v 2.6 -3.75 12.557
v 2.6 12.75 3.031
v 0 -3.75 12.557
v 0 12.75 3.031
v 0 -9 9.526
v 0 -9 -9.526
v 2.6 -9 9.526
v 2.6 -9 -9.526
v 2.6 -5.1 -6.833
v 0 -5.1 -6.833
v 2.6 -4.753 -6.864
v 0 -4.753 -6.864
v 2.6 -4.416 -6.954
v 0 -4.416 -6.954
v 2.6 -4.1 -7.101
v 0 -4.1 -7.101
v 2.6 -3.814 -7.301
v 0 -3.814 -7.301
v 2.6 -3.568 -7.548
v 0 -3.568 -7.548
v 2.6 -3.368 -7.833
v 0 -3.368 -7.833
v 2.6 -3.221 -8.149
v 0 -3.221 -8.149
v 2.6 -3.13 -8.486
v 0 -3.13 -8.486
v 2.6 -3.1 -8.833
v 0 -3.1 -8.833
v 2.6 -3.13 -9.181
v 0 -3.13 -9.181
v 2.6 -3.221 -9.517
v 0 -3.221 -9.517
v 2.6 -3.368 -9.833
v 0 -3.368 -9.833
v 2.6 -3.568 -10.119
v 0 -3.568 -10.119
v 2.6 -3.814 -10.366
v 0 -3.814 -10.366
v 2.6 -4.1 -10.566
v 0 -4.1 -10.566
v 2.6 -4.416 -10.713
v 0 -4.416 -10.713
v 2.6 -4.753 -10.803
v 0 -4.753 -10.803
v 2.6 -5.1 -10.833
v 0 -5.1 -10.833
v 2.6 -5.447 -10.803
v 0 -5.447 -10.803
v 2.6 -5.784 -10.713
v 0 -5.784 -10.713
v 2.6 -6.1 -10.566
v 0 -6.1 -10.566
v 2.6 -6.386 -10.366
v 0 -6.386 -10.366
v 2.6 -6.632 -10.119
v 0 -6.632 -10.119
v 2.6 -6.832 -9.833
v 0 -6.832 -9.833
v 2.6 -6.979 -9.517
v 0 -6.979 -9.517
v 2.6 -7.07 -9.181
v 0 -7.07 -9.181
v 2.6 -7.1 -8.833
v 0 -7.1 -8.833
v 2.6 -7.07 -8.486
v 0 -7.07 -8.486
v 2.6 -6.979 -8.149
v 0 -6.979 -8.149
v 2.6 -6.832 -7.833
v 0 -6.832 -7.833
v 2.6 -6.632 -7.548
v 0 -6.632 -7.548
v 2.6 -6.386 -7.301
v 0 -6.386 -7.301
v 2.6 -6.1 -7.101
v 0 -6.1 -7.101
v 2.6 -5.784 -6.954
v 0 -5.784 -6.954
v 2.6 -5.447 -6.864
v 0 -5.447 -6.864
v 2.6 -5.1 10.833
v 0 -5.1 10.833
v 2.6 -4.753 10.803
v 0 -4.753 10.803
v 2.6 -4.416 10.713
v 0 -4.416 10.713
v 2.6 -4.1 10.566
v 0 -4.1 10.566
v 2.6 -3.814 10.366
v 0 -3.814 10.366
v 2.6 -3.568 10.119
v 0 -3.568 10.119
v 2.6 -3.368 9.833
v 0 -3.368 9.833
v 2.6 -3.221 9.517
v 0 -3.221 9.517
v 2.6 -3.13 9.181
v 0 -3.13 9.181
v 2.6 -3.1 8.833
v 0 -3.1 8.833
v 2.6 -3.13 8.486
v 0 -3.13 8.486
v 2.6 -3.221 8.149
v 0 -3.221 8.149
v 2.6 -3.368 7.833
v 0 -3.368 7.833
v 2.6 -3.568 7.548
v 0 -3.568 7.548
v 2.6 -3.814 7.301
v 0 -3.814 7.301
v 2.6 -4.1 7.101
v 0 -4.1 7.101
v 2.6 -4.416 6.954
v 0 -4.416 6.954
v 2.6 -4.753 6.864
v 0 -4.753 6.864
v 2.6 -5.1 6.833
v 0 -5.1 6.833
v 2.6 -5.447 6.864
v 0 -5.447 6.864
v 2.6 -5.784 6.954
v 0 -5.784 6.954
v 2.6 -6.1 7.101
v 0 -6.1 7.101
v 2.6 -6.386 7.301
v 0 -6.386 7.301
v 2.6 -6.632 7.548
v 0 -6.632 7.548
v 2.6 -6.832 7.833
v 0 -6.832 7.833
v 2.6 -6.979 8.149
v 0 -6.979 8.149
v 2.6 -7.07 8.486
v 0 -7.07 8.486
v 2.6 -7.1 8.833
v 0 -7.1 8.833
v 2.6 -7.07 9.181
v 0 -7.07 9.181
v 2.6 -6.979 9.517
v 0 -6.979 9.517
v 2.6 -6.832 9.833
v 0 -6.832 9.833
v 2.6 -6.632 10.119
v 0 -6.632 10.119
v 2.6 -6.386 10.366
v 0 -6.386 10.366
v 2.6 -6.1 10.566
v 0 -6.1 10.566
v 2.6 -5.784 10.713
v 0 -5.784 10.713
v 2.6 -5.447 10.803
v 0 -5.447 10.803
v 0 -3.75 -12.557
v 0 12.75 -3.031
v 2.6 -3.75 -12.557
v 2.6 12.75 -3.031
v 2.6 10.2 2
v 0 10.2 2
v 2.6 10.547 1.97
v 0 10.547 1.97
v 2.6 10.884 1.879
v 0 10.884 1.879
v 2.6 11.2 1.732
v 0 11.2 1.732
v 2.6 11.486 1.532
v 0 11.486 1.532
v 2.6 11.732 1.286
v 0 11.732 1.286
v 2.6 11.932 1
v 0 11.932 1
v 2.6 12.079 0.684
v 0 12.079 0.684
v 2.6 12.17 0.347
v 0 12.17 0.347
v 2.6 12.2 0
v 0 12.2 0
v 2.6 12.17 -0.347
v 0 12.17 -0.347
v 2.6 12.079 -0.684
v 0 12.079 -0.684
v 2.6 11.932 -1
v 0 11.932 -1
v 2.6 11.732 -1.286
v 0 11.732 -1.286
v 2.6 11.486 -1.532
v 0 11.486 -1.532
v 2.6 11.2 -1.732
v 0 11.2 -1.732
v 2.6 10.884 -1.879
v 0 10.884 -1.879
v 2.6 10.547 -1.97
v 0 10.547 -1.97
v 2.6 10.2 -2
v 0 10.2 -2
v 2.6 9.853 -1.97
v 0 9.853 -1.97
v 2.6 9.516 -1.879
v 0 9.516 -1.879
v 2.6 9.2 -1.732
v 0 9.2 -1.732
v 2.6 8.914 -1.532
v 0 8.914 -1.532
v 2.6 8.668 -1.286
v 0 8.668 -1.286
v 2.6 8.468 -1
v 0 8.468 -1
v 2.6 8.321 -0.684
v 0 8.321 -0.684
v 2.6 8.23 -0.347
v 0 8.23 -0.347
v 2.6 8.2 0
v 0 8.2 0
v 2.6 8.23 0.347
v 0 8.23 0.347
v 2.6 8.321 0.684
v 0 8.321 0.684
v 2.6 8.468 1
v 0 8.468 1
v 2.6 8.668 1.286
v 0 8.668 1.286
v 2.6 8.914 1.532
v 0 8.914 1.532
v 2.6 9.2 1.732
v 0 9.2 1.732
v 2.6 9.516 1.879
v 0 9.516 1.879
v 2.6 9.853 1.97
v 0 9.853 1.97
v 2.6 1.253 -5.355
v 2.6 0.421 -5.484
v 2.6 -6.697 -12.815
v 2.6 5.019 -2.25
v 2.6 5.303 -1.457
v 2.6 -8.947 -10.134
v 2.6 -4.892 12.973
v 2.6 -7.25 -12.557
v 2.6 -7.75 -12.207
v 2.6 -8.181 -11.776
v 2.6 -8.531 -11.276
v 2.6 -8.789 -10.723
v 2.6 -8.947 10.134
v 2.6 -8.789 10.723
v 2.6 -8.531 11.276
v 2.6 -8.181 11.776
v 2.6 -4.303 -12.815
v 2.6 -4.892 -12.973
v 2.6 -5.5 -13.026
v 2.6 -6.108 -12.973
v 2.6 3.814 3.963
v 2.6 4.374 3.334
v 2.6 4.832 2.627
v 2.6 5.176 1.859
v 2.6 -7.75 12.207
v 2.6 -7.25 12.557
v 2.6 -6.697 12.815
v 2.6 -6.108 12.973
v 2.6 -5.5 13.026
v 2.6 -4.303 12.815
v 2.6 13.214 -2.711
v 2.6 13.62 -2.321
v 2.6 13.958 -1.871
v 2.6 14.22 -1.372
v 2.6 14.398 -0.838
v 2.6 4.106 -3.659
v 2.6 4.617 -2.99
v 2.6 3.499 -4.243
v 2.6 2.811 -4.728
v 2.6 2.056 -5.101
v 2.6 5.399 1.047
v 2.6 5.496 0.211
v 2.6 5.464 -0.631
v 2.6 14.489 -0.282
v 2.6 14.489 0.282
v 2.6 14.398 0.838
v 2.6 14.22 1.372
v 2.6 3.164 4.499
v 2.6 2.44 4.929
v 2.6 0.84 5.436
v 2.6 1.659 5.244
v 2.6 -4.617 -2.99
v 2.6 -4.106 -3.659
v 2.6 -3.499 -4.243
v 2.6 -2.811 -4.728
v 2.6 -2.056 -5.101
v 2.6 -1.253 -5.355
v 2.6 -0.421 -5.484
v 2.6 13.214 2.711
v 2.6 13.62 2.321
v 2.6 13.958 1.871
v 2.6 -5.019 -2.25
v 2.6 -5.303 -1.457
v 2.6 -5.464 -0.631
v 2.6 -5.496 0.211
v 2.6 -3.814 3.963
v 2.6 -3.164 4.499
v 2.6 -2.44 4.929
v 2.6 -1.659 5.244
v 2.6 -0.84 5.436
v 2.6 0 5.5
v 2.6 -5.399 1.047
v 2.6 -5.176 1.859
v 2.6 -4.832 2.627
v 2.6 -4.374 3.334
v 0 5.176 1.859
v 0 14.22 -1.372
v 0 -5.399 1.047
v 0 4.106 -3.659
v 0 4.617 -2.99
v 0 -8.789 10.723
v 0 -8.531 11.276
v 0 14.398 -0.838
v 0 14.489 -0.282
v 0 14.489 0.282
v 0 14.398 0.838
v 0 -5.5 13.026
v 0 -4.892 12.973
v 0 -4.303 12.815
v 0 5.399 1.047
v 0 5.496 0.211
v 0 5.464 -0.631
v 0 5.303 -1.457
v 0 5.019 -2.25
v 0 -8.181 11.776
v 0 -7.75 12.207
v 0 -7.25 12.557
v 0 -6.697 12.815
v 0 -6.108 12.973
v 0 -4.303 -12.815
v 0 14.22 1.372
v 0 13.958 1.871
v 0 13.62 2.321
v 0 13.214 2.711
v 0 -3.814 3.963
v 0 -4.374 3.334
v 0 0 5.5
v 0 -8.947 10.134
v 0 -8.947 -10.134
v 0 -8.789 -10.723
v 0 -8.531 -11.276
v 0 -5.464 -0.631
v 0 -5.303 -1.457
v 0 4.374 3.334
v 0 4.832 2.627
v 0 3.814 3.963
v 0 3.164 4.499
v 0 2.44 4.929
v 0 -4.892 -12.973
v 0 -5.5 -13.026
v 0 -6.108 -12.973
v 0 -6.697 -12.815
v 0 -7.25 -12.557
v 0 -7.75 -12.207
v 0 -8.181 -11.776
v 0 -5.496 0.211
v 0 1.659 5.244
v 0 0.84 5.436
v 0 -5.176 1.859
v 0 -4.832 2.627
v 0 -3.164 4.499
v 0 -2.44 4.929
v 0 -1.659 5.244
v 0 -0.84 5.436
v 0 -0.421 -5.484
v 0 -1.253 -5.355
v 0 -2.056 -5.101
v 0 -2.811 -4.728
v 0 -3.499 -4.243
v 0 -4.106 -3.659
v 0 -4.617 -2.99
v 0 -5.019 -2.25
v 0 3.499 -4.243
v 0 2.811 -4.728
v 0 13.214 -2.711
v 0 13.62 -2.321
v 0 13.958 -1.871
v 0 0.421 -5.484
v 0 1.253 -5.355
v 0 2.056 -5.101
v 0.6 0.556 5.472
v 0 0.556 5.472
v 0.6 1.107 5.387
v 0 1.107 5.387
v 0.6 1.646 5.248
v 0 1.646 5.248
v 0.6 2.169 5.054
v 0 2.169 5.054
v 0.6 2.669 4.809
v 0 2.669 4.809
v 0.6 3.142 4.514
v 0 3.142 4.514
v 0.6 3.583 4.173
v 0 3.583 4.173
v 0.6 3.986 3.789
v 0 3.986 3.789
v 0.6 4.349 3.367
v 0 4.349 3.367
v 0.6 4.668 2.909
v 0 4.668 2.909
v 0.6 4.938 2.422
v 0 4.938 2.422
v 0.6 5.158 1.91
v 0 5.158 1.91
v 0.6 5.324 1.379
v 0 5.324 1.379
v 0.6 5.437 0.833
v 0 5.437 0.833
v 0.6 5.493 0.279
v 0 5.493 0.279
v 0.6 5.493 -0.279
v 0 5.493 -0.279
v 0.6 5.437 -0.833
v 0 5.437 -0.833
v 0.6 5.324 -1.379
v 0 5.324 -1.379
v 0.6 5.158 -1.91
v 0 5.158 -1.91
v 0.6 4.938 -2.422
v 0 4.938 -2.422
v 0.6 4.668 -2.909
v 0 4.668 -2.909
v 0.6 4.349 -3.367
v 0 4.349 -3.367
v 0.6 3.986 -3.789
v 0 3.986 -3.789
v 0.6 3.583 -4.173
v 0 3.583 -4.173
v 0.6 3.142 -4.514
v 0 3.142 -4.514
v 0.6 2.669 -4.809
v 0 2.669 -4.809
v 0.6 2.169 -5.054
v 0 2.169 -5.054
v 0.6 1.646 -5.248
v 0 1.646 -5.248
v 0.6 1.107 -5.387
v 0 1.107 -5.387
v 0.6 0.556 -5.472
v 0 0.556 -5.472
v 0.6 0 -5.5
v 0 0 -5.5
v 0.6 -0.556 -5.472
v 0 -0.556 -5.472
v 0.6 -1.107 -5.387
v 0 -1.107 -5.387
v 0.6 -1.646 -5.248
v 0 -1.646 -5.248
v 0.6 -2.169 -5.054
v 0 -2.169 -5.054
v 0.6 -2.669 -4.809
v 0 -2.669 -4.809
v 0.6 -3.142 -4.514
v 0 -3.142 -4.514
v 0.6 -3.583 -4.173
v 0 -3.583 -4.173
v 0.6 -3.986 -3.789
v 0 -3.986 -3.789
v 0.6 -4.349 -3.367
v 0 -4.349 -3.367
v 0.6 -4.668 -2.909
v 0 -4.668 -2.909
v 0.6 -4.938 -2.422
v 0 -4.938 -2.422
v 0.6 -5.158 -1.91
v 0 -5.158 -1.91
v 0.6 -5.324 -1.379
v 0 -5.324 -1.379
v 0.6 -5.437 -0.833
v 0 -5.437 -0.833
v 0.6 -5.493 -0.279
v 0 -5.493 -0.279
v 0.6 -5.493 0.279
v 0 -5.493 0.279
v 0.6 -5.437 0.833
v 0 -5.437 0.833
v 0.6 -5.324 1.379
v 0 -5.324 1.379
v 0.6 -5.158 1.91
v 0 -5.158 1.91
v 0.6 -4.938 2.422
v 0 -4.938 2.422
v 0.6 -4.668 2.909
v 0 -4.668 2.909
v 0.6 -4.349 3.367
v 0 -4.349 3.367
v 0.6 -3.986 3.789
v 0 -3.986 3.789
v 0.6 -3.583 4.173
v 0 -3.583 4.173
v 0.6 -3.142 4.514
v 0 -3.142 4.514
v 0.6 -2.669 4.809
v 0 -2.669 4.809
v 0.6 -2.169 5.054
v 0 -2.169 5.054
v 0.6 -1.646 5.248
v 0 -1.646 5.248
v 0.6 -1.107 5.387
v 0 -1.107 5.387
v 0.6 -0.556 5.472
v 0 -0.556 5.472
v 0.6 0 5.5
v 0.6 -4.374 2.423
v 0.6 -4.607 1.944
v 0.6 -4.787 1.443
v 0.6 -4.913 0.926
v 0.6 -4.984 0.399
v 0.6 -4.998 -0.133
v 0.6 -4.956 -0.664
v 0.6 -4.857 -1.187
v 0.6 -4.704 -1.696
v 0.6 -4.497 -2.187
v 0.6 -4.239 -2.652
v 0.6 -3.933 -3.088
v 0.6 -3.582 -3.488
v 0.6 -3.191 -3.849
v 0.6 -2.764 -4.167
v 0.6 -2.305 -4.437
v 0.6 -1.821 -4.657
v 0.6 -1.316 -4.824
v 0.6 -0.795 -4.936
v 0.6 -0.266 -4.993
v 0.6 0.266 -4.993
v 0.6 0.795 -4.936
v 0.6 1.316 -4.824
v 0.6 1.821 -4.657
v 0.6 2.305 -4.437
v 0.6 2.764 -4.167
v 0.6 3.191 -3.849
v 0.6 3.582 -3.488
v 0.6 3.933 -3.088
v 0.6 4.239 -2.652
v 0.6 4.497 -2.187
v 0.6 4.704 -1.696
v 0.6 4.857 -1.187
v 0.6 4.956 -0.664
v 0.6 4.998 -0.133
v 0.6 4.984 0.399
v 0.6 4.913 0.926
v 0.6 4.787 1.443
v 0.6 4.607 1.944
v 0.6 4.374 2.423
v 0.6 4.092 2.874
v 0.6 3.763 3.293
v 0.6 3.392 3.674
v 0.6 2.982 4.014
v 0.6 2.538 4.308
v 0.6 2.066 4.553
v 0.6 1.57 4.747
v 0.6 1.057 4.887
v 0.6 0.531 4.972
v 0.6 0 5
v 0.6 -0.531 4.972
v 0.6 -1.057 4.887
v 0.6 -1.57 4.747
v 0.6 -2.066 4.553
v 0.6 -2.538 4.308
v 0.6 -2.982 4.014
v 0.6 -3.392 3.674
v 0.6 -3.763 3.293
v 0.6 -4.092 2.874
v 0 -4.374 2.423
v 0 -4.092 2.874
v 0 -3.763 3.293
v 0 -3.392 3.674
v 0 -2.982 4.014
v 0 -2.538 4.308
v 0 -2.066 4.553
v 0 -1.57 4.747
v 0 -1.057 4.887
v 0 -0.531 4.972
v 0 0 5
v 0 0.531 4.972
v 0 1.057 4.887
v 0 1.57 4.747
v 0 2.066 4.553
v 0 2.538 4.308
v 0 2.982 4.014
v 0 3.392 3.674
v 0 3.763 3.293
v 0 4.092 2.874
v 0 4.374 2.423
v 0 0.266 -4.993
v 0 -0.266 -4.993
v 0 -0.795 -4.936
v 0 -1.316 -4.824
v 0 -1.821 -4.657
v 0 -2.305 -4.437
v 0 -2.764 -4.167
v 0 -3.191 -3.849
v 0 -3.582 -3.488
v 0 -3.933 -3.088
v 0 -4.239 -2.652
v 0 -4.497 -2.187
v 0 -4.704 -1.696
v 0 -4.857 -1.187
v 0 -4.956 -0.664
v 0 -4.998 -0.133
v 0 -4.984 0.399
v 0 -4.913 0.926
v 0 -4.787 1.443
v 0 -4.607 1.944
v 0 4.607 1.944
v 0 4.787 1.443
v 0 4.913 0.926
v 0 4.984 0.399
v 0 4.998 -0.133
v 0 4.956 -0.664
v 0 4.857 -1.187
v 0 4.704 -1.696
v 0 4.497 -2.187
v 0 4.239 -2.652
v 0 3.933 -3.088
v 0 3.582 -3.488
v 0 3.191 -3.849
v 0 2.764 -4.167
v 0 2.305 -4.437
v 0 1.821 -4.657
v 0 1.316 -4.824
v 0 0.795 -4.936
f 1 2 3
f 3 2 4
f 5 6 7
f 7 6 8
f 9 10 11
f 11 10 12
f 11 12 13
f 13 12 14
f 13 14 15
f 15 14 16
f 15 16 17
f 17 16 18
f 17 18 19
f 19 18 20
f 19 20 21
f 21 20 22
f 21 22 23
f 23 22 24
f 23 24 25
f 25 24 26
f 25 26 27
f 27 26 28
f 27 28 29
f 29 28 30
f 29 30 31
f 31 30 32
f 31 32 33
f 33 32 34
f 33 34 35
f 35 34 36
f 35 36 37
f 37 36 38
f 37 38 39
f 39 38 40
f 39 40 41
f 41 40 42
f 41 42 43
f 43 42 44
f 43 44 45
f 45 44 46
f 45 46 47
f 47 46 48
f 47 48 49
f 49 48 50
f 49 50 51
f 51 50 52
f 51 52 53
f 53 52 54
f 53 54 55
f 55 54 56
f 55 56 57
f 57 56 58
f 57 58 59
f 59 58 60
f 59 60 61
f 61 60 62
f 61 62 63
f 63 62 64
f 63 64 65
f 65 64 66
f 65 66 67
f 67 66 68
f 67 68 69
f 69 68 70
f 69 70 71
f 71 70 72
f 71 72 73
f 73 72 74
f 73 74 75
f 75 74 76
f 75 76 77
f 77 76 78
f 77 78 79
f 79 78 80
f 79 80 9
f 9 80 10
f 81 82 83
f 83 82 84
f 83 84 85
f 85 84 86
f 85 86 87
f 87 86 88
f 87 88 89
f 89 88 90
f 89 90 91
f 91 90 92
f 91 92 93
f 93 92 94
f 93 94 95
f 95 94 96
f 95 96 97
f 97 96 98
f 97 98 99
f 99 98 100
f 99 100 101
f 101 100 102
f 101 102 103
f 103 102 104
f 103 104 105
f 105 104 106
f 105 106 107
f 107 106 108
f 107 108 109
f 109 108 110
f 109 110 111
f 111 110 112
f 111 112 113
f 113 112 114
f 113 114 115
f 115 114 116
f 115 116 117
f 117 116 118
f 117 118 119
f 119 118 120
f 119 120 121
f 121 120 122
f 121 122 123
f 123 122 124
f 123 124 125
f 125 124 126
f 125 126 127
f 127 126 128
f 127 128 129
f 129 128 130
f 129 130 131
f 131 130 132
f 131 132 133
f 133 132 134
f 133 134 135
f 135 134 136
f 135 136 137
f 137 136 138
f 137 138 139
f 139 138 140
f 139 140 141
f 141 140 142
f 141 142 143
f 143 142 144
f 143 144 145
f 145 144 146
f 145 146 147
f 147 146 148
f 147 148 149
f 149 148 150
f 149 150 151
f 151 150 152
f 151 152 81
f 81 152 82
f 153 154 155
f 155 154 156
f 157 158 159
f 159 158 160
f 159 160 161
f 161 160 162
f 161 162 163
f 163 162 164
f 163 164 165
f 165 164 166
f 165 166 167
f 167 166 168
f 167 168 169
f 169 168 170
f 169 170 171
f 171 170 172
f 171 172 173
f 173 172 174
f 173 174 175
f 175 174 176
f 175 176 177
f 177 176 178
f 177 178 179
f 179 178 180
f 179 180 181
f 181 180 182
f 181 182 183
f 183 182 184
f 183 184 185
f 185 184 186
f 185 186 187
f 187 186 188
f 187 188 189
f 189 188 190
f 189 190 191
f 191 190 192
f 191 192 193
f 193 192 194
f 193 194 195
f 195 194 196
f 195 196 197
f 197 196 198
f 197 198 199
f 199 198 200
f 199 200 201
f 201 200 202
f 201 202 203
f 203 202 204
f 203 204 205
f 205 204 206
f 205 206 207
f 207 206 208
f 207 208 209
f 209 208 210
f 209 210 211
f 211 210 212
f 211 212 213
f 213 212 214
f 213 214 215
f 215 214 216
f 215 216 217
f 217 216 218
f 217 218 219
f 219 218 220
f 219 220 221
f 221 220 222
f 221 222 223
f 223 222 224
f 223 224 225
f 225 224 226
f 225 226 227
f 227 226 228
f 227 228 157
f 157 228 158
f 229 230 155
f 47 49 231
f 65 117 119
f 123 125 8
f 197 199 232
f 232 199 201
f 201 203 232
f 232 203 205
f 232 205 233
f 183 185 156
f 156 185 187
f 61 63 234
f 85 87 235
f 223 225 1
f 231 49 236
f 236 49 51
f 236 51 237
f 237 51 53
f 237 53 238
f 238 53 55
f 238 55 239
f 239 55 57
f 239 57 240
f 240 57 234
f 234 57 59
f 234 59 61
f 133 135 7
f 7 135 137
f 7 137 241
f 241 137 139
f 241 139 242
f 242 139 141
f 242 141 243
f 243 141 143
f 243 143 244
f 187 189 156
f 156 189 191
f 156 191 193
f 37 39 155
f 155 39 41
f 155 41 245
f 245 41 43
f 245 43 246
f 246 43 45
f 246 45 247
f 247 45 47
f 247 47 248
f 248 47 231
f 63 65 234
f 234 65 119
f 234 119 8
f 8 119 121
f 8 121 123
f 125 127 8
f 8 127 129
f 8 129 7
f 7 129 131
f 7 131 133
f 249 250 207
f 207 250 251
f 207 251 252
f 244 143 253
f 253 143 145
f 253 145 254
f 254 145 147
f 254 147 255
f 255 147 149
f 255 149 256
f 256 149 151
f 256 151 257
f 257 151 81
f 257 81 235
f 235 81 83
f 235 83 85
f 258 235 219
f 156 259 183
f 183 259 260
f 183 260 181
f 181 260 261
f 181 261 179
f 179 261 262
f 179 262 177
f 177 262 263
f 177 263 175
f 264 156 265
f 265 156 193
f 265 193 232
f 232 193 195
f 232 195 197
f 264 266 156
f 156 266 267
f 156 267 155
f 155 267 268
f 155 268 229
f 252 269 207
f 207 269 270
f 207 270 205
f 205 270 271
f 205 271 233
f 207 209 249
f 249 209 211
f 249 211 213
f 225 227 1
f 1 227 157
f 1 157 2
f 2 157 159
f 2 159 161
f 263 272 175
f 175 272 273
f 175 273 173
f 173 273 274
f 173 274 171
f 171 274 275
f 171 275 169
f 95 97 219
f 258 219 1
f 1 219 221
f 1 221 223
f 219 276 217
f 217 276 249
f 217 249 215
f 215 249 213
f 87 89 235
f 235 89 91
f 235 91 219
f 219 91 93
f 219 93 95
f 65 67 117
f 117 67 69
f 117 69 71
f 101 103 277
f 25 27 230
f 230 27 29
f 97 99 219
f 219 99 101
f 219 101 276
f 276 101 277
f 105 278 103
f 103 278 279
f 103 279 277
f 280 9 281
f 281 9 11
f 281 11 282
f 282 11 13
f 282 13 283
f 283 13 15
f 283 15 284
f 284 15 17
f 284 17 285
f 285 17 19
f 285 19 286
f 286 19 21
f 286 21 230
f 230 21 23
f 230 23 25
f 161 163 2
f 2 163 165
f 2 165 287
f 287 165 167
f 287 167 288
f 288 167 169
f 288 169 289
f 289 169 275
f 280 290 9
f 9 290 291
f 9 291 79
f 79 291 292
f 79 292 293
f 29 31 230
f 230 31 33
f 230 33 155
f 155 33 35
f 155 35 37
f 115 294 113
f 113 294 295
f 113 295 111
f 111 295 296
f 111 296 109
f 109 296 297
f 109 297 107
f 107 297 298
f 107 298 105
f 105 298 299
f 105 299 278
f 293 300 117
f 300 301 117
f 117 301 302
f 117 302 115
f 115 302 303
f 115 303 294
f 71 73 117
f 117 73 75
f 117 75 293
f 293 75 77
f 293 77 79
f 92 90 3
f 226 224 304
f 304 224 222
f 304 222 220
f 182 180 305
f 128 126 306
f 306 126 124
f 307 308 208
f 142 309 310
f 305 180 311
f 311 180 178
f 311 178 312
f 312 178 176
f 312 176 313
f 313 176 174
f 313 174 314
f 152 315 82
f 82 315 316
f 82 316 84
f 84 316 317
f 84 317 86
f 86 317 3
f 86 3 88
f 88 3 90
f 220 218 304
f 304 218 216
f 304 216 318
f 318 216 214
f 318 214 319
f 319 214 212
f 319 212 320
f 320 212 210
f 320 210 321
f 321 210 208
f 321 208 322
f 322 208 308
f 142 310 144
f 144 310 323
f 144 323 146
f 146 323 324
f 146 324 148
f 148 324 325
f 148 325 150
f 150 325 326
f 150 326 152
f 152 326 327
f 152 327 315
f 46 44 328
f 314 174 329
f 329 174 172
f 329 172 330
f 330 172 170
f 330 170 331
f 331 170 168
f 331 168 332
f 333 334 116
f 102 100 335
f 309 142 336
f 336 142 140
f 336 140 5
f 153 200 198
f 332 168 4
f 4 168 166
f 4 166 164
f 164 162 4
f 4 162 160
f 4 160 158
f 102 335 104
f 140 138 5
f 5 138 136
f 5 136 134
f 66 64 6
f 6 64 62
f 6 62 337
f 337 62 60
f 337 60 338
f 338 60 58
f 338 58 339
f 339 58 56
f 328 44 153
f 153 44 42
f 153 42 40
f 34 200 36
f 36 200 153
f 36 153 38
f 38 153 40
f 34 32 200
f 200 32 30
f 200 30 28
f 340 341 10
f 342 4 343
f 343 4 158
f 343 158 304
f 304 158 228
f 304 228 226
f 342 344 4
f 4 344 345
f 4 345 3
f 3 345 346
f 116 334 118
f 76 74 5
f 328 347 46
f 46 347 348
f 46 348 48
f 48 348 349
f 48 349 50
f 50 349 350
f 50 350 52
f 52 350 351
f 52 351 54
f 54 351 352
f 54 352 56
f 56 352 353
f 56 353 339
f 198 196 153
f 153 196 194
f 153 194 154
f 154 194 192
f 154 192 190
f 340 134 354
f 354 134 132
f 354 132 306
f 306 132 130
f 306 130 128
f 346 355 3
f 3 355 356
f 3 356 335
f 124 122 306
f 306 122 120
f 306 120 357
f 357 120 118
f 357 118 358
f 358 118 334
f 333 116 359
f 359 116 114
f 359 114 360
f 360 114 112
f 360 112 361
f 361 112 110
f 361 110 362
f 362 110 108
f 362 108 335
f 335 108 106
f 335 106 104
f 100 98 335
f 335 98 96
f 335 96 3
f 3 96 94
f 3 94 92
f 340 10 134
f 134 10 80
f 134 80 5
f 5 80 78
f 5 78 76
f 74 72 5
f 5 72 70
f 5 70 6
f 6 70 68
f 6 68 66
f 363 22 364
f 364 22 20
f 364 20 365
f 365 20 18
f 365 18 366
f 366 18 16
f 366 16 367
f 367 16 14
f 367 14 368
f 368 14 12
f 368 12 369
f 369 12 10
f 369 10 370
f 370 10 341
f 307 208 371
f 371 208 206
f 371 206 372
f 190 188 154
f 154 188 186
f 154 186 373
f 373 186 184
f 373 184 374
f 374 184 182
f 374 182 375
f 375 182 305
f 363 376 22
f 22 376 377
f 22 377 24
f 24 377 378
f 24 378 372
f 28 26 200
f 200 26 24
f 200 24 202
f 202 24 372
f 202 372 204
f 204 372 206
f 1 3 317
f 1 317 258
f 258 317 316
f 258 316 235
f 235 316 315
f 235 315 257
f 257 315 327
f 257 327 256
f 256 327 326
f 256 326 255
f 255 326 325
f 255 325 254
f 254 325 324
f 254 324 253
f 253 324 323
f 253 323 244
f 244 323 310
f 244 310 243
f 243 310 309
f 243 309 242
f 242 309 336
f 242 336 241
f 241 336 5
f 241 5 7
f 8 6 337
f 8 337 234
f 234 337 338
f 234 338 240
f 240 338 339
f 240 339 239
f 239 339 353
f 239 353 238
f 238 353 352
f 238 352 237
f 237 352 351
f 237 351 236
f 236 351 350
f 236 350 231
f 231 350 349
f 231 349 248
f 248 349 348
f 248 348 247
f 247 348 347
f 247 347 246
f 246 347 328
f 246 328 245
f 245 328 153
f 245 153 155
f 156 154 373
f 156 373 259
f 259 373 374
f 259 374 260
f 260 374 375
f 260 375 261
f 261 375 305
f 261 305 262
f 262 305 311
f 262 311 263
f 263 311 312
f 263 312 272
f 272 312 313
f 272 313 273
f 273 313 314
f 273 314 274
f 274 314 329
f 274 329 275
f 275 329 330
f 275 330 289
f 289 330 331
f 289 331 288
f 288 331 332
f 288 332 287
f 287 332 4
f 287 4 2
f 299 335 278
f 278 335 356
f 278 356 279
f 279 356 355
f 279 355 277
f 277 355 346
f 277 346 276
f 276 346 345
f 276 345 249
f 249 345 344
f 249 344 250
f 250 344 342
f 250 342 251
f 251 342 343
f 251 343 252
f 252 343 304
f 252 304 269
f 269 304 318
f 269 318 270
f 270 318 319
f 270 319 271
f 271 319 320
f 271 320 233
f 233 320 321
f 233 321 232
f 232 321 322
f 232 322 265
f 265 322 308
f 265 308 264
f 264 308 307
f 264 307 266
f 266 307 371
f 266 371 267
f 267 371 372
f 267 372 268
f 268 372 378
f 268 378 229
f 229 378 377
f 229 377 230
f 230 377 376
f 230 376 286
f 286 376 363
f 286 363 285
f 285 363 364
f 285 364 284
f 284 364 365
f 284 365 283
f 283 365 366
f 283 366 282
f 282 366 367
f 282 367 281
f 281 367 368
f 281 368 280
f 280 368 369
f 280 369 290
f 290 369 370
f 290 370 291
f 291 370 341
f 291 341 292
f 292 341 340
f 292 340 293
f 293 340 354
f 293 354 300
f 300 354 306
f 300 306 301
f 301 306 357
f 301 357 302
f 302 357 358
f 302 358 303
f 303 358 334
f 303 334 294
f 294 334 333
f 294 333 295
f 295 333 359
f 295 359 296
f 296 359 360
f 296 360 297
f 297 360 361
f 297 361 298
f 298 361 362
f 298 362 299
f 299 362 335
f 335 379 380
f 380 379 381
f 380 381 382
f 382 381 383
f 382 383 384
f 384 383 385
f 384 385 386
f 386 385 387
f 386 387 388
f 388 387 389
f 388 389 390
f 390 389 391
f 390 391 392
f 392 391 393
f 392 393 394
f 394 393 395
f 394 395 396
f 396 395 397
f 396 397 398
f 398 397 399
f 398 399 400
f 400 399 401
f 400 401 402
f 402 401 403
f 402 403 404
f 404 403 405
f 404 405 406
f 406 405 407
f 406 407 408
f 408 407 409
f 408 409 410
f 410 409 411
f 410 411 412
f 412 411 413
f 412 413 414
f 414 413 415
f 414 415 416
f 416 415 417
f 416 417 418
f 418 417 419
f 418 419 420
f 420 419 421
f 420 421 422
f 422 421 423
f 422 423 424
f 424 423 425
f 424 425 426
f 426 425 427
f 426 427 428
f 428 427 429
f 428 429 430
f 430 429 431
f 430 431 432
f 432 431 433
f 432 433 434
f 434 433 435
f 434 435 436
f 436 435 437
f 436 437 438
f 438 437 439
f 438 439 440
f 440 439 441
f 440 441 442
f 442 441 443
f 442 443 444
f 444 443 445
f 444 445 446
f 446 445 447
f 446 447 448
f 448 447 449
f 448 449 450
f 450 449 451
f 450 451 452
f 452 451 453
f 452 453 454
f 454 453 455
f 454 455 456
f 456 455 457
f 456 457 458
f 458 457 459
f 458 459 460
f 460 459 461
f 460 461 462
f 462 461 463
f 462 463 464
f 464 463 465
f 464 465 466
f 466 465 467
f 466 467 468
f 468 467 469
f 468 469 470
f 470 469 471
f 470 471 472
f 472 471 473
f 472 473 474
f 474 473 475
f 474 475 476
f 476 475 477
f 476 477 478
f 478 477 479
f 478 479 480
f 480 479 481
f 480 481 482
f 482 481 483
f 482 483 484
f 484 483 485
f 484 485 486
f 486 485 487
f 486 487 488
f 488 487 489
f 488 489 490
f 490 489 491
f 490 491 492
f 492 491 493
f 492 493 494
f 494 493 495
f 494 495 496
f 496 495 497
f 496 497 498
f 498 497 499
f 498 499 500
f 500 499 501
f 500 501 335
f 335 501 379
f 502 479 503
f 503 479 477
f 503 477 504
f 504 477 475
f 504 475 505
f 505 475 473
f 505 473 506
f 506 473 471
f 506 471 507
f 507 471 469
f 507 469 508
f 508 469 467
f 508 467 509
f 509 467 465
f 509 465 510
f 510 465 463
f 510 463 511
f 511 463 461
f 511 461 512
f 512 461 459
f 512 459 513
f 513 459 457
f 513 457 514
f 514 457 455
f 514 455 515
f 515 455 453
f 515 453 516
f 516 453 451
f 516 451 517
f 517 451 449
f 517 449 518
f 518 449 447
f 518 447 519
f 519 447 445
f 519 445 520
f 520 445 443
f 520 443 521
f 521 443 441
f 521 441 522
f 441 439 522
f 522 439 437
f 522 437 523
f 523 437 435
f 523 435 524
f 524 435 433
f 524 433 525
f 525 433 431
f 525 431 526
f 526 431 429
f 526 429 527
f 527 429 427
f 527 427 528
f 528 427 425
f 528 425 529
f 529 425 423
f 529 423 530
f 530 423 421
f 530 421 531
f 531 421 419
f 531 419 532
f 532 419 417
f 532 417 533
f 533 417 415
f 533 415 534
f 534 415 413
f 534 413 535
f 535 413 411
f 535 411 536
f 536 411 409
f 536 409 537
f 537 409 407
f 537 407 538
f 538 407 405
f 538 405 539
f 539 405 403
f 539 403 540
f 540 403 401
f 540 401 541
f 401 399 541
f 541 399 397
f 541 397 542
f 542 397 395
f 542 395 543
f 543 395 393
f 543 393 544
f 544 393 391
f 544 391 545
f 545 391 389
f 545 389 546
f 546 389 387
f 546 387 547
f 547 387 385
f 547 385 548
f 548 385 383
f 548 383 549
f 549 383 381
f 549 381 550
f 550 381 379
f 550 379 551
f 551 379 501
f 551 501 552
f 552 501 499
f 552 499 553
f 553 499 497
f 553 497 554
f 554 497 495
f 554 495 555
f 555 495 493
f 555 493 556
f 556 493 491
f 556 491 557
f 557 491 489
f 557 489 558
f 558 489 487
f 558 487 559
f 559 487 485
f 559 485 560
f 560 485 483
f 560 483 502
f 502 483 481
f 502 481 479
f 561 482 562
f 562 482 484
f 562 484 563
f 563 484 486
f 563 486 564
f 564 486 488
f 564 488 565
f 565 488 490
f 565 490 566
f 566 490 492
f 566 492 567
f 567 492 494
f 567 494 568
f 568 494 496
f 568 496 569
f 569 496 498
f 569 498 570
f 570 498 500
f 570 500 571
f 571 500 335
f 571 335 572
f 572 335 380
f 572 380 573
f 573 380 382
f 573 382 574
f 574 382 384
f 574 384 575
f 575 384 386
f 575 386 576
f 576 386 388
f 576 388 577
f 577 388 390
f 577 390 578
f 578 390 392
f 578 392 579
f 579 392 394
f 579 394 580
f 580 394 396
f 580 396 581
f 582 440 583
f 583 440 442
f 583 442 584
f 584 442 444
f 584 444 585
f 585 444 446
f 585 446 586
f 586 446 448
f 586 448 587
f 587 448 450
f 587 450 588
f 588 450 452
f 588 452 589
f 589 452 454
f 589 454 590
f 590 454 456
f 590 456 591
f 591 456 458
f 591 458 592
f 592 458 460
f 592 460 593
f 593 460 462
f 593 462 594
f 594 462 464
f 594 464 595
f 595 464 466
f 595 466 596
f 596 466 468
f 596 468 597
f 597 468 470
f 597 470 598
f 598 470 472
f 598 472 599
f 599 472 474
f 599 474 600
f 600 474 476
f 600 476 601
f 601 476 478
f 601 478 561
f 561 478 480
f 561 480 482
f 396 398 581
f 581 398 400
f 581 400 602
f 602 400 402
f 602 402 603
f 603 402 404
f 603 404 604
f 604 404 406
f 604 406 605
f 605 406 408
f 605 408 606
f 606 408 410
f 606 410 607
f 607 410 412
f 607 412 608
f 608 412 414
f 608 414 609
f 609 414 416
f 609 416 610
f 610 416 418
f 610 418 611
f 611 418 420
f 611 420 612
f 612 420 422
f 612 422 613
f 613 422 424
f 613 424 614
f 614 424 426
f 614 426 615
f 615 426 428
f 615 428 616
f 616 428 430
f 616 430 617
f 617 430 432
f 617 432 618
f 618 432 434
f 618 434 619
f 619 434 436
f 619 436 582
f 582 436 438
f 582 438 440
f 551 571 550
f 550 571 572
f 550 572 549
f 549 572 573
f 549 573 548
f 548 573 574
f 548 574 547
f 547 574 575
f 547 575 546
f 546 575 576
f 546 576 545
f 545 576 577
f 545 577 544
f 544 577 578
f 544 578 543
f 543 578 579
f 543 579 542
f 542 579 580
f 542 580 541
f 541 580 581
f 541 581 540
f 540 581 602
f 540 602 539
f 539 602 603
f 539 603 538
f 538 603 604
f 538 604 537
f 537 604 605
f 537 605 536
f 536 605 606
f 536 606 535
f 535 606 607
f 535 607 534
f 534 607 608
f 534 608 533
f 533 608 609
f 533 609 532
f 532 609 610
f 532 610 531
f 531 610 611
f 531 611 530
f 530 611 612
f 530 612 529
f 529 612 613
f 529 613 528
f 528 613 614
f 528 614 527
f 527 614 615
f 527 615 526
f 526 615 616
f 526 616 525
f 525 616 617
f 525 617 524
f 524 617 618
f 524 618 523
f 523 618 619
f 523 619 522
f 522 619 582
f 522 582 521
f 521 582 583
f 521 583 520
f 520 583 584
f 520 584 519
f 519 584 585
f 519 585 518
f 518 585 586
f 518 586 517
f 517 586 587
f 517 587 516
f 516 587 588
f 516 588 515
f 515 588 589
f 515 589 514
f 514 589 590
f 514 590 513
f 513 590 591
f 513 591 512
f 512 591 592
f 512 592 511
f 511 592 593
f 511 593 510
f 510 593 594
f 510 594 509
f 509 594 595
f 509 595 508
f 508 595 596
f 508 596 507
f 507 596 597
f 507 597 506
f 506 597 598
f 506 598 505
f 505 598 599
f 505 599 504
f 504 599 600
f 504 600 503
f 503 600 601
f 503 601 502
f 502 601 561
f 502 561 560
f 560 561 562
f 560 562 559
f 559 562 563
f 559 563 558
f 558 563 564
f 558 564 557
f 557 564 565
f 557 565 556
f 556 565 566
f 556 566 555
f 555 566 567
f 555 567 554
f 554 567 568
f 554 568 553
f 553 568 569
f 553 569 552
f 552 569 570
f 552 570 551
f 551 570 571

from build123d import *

# Parameters (mm, degrees)
SKETCH_1_R          = 2
EXTRUDE_2_DEPTH     = 2.6
FILLET_1_R          = 3.5
SKETCH_4_R          = 5.5
CUT_EXTRUDE_1_DEPTH = 20.664535491
SKETCH_6_R          = 5.5
SKETCH_6_R_2        = 5
EXTRUDE_4_DEPTH     = 0.6


with BuildPart() as part:
    # 草图1 → 凸台-拉伸2 (new body)
    with BuildSketch(Plane(origin=(0, 0, 0), x_dir=(0, 0, -1), z_dir=(1, 0, 0))):
        Polygon((0, 18), (-15.588457268, -9), (15.588457268, -9), align=None)
        with Locations((0, 10.2)):
            Circle(SKETCH_1_R, mode=Mode.SUBTRACT)
        with Locations((8.833459119, -5.1)):
            Circle(SKETCH_1_R, mode=Mode.SUBTRACT)
        with Locations((-8.833459119, -5.1)):
            Circle(SKETCH_1_R, mode=Mode.SUBTRACT)
    extrude(amount=EXTRUDE_2_DEPTH)

    # 圆角1
    fillet_1_edges = [part.edges().sort_by_distance(p)[0] for p in [
        (1.3, 18, 0),
        (1.3, -9, -15.588457268),
        (1.3, -9, 15.588457268),
    ]]
    fillet(fillet_1_edges, radius=FILLET_1_R)

    # 草图4 → 切除-拉伸1 (cut, through all)
    with BuildSketch(Plane.ZY):
        Circle(SKETCH_4_R)
    extrude(amount=-CUT_EXTRUDE_1_DEPTH, mode=Mode.SUBTRACT)


with BuildPart() as body_2:
    # 草图6 → 凸台-拉伸4 (new body)
    with BuildSketch(Plane.ZY):
        Circle(SKETCH_6_R)
        Circle(SKETCH_6_R_2, mode=Mode.SUBTRACT)
    extrude(amount=-EXTRUDE_4_DEPTH)


solid = Compound([part.part, body_2.part])
